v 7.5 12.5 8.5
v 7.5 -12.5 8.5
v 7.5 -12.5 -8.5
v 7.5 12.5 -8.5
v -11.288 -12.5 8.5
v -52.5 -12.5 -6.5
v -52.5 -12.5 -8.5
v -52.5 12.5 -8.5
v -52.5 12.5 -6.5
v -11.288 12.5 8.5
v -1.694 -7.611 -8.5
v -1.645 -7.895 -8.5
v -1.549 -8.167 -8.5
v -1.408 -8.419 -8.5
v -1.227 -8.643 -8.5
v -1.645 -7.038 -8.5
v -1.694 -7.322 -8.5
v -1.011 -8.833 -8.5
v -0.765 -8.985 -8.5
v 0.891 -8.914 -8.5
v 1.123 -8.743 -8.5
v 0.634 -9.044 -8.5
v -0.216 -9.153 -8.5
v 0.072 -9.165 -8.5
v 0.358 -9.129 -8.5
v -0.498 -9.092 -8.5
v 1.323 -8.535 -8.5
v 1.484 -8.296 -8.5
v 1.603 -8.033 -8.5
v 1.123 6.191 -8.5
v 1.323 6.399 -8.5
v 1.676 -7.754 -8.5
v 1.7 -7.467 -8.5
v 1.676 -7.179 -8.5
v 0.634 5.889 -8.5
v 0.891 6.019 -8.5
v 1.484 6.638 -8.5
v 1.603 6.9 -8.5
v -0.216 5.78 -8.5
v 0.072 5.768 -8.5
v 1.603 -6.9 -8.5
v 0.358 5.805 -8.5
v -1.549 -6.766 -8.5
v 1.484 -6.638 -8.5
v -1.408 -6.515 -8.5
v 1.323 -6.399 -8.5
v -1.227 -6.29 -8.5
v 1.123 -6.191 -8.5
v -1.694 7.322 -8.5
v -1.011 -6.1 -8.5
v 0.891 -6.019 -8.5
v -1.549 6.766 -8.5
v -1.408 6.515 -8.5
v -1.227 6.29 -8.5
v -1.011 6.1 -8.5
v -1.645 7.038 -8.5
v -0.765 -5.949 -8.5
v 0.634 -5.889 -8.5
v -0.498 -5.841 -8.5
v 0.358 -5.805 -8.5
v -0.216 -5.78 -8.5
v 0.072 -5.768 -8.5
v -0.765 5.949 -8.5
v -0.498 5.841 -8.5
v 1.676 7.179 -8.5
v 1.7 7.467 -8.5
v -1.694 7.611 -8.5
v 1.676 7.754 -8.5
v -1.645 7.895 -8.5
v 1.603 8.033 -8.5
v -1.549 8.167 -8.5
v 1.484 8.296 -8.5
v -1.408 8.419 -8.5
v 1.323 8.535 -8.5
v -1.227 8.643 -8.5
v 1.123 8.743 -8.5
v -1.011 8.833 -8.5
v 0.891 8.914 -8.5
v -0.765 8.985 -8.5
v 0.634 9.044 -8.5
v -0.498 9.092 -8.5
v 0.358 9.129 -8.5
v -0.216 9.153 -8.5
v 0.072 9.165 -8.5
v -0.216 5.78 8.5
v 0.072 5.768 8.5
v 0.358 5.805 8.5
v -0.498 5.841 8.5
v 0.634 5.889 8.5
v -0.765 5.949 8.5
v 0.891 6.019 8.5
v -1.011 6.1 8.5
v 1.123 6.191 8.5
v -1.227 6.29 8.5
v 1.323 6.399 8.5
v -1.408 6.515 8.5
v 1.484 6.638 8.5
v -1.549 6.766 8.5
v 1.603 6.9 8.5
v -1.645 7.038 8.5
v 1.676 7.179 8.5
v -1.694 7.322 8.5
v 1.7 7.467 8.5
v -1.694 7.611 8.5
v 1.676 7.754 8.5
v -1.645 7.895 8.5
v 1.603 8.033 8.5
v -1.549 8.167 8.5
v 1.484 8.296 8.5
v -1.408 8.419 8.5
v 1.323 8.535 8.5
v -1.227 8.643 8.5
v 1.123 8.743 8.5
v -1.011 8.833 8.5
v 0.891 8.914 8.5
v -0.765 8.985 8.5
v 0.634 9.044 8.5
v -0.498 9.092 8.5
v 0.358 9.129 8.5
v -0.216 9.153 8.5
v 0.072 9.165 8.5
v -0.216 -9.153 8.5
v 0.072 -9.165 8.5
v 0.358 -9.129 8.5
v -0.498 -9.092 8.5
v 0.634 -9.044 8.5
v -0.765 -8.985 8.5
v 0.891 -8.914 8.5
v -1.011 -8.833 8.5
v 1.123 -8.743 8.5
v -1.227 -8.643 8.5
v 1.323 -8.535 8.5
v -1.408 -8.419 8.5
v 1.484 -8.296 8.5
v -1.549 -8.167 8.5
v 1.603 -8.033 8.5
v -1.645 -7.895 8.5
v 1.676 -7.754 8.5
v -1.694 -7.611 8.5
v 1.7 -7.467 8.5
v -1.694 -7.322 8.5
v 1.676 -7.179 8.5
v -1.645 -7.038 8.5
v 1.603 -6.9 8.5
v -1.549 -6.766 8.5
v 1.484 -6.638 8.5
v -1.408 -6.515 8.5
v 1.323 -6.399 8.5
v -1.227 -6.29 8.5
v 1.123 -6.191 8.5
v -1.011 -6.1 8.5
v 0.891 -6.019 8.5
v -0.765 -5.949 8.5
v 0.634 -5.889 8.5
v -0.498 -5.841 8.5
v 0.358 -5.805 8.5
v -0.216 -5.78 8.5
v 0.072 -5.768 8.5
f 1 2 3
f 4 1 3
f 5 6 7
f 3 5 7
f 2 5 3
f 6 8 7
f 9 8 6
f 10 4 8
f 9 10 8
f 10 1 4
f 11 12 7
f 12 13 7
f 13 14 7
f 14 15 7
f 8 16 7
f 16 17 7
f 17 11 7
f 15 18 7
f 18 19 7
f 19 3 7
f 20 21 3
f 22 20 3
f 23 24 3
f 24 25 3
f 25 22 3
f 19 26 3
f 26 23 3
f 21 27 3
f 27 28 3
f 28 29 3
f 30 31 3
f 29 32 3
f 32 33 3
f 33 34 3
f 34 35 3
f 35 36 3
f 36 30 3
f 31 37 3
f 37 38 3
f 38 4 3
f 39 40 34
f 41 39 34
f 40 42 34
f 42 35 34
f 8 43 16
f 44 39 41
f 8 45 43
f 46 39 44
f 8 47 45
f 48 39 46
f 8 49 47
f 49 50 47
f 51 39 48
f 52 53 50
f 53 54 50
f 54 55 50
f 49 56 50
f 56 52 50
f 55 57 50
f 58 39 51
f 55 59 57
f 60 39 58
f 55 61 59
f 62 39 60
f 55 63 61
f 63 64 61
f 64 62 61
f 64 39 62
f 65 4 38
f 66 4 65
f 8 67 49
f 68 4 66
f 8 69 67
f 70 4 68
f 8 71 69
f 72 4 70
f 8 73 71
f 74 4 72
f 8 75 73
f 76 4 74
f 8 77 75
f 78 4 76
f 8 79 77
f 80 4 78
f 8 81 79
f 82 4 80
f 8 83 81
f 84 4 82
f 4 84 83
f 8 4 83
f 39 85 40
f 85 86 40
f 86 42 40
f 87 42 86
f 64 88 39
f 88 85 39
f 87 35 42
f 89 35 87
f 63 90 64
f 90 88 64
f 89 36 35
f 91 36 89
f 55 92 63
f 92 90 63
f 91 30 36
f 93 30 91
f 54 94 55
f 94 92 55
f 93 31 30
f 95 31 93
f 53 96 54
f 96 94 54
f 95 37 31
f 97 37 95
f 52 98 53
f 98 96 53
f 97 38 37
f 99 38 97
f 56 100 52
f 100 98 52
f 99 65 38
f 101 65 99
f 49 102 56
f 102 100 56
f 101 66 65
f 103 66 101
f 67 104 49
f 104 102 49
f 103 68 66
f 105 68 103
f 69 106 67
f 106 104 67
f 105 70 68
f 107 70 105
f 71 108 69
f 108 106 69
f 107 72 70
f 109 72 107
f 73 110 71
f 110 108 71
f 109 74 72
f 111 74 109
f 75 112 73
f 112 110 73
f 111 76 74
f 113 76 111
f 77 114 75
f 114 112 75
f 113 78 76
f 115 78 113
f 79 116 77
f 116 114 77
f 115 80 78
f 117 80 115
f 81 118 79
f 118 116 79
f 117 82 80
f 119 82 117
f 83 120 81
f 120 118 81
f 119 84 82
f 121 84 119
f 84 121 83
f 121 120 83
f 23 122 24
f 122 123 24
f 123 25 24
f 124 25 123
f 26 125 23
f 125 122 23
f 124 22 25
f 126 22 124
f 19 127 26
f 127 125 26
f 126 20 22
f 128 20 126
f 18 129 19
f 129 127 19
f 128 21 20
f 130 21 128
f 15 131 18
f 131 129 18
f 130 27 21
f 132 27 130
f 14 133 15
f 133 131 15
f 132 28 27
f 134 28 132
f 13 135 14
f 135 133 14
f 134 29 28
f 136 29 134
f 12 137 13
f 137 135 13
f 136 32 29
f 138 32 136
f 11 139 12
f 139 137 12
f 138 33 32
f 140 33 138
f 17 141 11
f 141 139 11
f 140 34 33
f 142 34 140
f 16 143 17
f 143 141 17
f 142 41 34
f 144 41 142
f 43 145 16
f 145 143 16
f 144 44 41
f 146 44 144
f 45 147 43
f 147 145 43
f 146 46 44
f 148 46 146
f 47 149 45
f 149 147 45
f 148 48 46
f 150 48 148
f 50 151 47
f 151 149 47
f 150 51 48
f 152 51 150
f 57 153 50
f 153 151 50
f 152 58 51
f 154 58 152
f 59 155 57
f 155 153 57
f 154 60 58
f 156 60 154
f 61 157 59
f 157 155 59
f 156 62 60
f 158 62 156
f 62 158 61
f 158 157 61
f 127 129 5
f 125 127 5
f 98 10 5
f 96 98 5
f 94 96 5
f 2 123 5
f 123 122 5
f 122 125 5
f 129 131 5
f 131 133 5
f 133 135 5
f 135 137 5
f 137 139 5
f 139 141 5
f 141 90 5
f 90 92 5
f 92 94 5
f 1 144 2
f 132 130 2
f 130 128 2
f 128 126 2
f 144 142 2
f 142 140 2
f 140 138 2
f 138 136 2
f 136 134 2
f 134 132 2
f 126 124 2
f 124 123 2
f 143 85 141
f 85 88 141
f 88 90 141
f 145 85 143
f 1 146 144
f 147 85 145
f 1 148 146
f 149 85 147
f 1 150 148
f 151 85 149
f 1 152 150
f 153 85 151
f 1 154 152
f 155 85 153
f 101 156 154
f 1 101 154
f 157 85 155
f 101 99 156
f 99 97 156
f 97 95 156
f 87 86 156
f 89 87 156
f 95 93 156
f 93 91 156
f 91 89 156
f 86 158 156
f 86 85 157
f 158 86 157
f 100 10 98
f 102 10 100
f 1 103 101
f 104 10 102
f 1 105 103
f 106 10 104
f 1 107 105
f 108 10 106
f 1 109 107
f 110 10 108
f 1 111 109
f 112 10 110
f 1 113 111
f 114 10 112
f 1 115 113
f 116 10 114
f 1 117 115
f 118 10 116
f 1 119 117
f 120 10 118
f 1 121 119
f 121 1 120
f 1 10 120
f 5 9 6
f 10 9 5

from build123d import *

# Parameters (mm, degrees)
BOSS_EXTRUDE1_DEPTH      = 8.5
BOSS_EXTRUDE1_DEPTH_BACK = 8.5
SKETCH2_R                = 1.7
CHAMFER1_SIZE            = 15
CHAMFER1_SIZE2           = 41.212161292


with BuildPart() as part:
    # Sketch2 → Boss-Extrude1 (new, two sides: drawn at the far end of the back side and taken through both)
    with BuildSketch(Plane.XY.offset(-BOSS_EXTRUDE1_DEPTH_BACK)):
        Polygon((-7.5, 12.5), (7.5, 12.5), (7.5, -12.5), (-7.5, -12.5), (-52.5, -12.5), (-52.5, 12.5), align=None)
        with Locations((0, 7.466666667)):
            Circle(SKETCH2_R, mode=Mode.SUBTRACT)
        with Locations((0, -7.466666667)):
            Circle(SKETCH2_R, mode=Mode.SUBTRACT)
    extrude(amount=BOSS_EXTRUDE1_DEPTH + BOSS_EXTRUDE1_DEPTH_BACK)

    # Chamfer1
    chamfer1_edges = [part.edges().sort_by_distance(p)[0] for p in [
        (-52.5, 0, 8.5),
    ]]
    chamfer1_side = [part.faces().sort_by_distance(p)[0] for p in [
        (-52.5, 0, 0),
    ]]
    chamfer(chamfer1_edges, length=CHAMFER1_SIZE, length2=CHAMFER1_SIZE2, reference=chamfer1_side[0])


solid = part.part
